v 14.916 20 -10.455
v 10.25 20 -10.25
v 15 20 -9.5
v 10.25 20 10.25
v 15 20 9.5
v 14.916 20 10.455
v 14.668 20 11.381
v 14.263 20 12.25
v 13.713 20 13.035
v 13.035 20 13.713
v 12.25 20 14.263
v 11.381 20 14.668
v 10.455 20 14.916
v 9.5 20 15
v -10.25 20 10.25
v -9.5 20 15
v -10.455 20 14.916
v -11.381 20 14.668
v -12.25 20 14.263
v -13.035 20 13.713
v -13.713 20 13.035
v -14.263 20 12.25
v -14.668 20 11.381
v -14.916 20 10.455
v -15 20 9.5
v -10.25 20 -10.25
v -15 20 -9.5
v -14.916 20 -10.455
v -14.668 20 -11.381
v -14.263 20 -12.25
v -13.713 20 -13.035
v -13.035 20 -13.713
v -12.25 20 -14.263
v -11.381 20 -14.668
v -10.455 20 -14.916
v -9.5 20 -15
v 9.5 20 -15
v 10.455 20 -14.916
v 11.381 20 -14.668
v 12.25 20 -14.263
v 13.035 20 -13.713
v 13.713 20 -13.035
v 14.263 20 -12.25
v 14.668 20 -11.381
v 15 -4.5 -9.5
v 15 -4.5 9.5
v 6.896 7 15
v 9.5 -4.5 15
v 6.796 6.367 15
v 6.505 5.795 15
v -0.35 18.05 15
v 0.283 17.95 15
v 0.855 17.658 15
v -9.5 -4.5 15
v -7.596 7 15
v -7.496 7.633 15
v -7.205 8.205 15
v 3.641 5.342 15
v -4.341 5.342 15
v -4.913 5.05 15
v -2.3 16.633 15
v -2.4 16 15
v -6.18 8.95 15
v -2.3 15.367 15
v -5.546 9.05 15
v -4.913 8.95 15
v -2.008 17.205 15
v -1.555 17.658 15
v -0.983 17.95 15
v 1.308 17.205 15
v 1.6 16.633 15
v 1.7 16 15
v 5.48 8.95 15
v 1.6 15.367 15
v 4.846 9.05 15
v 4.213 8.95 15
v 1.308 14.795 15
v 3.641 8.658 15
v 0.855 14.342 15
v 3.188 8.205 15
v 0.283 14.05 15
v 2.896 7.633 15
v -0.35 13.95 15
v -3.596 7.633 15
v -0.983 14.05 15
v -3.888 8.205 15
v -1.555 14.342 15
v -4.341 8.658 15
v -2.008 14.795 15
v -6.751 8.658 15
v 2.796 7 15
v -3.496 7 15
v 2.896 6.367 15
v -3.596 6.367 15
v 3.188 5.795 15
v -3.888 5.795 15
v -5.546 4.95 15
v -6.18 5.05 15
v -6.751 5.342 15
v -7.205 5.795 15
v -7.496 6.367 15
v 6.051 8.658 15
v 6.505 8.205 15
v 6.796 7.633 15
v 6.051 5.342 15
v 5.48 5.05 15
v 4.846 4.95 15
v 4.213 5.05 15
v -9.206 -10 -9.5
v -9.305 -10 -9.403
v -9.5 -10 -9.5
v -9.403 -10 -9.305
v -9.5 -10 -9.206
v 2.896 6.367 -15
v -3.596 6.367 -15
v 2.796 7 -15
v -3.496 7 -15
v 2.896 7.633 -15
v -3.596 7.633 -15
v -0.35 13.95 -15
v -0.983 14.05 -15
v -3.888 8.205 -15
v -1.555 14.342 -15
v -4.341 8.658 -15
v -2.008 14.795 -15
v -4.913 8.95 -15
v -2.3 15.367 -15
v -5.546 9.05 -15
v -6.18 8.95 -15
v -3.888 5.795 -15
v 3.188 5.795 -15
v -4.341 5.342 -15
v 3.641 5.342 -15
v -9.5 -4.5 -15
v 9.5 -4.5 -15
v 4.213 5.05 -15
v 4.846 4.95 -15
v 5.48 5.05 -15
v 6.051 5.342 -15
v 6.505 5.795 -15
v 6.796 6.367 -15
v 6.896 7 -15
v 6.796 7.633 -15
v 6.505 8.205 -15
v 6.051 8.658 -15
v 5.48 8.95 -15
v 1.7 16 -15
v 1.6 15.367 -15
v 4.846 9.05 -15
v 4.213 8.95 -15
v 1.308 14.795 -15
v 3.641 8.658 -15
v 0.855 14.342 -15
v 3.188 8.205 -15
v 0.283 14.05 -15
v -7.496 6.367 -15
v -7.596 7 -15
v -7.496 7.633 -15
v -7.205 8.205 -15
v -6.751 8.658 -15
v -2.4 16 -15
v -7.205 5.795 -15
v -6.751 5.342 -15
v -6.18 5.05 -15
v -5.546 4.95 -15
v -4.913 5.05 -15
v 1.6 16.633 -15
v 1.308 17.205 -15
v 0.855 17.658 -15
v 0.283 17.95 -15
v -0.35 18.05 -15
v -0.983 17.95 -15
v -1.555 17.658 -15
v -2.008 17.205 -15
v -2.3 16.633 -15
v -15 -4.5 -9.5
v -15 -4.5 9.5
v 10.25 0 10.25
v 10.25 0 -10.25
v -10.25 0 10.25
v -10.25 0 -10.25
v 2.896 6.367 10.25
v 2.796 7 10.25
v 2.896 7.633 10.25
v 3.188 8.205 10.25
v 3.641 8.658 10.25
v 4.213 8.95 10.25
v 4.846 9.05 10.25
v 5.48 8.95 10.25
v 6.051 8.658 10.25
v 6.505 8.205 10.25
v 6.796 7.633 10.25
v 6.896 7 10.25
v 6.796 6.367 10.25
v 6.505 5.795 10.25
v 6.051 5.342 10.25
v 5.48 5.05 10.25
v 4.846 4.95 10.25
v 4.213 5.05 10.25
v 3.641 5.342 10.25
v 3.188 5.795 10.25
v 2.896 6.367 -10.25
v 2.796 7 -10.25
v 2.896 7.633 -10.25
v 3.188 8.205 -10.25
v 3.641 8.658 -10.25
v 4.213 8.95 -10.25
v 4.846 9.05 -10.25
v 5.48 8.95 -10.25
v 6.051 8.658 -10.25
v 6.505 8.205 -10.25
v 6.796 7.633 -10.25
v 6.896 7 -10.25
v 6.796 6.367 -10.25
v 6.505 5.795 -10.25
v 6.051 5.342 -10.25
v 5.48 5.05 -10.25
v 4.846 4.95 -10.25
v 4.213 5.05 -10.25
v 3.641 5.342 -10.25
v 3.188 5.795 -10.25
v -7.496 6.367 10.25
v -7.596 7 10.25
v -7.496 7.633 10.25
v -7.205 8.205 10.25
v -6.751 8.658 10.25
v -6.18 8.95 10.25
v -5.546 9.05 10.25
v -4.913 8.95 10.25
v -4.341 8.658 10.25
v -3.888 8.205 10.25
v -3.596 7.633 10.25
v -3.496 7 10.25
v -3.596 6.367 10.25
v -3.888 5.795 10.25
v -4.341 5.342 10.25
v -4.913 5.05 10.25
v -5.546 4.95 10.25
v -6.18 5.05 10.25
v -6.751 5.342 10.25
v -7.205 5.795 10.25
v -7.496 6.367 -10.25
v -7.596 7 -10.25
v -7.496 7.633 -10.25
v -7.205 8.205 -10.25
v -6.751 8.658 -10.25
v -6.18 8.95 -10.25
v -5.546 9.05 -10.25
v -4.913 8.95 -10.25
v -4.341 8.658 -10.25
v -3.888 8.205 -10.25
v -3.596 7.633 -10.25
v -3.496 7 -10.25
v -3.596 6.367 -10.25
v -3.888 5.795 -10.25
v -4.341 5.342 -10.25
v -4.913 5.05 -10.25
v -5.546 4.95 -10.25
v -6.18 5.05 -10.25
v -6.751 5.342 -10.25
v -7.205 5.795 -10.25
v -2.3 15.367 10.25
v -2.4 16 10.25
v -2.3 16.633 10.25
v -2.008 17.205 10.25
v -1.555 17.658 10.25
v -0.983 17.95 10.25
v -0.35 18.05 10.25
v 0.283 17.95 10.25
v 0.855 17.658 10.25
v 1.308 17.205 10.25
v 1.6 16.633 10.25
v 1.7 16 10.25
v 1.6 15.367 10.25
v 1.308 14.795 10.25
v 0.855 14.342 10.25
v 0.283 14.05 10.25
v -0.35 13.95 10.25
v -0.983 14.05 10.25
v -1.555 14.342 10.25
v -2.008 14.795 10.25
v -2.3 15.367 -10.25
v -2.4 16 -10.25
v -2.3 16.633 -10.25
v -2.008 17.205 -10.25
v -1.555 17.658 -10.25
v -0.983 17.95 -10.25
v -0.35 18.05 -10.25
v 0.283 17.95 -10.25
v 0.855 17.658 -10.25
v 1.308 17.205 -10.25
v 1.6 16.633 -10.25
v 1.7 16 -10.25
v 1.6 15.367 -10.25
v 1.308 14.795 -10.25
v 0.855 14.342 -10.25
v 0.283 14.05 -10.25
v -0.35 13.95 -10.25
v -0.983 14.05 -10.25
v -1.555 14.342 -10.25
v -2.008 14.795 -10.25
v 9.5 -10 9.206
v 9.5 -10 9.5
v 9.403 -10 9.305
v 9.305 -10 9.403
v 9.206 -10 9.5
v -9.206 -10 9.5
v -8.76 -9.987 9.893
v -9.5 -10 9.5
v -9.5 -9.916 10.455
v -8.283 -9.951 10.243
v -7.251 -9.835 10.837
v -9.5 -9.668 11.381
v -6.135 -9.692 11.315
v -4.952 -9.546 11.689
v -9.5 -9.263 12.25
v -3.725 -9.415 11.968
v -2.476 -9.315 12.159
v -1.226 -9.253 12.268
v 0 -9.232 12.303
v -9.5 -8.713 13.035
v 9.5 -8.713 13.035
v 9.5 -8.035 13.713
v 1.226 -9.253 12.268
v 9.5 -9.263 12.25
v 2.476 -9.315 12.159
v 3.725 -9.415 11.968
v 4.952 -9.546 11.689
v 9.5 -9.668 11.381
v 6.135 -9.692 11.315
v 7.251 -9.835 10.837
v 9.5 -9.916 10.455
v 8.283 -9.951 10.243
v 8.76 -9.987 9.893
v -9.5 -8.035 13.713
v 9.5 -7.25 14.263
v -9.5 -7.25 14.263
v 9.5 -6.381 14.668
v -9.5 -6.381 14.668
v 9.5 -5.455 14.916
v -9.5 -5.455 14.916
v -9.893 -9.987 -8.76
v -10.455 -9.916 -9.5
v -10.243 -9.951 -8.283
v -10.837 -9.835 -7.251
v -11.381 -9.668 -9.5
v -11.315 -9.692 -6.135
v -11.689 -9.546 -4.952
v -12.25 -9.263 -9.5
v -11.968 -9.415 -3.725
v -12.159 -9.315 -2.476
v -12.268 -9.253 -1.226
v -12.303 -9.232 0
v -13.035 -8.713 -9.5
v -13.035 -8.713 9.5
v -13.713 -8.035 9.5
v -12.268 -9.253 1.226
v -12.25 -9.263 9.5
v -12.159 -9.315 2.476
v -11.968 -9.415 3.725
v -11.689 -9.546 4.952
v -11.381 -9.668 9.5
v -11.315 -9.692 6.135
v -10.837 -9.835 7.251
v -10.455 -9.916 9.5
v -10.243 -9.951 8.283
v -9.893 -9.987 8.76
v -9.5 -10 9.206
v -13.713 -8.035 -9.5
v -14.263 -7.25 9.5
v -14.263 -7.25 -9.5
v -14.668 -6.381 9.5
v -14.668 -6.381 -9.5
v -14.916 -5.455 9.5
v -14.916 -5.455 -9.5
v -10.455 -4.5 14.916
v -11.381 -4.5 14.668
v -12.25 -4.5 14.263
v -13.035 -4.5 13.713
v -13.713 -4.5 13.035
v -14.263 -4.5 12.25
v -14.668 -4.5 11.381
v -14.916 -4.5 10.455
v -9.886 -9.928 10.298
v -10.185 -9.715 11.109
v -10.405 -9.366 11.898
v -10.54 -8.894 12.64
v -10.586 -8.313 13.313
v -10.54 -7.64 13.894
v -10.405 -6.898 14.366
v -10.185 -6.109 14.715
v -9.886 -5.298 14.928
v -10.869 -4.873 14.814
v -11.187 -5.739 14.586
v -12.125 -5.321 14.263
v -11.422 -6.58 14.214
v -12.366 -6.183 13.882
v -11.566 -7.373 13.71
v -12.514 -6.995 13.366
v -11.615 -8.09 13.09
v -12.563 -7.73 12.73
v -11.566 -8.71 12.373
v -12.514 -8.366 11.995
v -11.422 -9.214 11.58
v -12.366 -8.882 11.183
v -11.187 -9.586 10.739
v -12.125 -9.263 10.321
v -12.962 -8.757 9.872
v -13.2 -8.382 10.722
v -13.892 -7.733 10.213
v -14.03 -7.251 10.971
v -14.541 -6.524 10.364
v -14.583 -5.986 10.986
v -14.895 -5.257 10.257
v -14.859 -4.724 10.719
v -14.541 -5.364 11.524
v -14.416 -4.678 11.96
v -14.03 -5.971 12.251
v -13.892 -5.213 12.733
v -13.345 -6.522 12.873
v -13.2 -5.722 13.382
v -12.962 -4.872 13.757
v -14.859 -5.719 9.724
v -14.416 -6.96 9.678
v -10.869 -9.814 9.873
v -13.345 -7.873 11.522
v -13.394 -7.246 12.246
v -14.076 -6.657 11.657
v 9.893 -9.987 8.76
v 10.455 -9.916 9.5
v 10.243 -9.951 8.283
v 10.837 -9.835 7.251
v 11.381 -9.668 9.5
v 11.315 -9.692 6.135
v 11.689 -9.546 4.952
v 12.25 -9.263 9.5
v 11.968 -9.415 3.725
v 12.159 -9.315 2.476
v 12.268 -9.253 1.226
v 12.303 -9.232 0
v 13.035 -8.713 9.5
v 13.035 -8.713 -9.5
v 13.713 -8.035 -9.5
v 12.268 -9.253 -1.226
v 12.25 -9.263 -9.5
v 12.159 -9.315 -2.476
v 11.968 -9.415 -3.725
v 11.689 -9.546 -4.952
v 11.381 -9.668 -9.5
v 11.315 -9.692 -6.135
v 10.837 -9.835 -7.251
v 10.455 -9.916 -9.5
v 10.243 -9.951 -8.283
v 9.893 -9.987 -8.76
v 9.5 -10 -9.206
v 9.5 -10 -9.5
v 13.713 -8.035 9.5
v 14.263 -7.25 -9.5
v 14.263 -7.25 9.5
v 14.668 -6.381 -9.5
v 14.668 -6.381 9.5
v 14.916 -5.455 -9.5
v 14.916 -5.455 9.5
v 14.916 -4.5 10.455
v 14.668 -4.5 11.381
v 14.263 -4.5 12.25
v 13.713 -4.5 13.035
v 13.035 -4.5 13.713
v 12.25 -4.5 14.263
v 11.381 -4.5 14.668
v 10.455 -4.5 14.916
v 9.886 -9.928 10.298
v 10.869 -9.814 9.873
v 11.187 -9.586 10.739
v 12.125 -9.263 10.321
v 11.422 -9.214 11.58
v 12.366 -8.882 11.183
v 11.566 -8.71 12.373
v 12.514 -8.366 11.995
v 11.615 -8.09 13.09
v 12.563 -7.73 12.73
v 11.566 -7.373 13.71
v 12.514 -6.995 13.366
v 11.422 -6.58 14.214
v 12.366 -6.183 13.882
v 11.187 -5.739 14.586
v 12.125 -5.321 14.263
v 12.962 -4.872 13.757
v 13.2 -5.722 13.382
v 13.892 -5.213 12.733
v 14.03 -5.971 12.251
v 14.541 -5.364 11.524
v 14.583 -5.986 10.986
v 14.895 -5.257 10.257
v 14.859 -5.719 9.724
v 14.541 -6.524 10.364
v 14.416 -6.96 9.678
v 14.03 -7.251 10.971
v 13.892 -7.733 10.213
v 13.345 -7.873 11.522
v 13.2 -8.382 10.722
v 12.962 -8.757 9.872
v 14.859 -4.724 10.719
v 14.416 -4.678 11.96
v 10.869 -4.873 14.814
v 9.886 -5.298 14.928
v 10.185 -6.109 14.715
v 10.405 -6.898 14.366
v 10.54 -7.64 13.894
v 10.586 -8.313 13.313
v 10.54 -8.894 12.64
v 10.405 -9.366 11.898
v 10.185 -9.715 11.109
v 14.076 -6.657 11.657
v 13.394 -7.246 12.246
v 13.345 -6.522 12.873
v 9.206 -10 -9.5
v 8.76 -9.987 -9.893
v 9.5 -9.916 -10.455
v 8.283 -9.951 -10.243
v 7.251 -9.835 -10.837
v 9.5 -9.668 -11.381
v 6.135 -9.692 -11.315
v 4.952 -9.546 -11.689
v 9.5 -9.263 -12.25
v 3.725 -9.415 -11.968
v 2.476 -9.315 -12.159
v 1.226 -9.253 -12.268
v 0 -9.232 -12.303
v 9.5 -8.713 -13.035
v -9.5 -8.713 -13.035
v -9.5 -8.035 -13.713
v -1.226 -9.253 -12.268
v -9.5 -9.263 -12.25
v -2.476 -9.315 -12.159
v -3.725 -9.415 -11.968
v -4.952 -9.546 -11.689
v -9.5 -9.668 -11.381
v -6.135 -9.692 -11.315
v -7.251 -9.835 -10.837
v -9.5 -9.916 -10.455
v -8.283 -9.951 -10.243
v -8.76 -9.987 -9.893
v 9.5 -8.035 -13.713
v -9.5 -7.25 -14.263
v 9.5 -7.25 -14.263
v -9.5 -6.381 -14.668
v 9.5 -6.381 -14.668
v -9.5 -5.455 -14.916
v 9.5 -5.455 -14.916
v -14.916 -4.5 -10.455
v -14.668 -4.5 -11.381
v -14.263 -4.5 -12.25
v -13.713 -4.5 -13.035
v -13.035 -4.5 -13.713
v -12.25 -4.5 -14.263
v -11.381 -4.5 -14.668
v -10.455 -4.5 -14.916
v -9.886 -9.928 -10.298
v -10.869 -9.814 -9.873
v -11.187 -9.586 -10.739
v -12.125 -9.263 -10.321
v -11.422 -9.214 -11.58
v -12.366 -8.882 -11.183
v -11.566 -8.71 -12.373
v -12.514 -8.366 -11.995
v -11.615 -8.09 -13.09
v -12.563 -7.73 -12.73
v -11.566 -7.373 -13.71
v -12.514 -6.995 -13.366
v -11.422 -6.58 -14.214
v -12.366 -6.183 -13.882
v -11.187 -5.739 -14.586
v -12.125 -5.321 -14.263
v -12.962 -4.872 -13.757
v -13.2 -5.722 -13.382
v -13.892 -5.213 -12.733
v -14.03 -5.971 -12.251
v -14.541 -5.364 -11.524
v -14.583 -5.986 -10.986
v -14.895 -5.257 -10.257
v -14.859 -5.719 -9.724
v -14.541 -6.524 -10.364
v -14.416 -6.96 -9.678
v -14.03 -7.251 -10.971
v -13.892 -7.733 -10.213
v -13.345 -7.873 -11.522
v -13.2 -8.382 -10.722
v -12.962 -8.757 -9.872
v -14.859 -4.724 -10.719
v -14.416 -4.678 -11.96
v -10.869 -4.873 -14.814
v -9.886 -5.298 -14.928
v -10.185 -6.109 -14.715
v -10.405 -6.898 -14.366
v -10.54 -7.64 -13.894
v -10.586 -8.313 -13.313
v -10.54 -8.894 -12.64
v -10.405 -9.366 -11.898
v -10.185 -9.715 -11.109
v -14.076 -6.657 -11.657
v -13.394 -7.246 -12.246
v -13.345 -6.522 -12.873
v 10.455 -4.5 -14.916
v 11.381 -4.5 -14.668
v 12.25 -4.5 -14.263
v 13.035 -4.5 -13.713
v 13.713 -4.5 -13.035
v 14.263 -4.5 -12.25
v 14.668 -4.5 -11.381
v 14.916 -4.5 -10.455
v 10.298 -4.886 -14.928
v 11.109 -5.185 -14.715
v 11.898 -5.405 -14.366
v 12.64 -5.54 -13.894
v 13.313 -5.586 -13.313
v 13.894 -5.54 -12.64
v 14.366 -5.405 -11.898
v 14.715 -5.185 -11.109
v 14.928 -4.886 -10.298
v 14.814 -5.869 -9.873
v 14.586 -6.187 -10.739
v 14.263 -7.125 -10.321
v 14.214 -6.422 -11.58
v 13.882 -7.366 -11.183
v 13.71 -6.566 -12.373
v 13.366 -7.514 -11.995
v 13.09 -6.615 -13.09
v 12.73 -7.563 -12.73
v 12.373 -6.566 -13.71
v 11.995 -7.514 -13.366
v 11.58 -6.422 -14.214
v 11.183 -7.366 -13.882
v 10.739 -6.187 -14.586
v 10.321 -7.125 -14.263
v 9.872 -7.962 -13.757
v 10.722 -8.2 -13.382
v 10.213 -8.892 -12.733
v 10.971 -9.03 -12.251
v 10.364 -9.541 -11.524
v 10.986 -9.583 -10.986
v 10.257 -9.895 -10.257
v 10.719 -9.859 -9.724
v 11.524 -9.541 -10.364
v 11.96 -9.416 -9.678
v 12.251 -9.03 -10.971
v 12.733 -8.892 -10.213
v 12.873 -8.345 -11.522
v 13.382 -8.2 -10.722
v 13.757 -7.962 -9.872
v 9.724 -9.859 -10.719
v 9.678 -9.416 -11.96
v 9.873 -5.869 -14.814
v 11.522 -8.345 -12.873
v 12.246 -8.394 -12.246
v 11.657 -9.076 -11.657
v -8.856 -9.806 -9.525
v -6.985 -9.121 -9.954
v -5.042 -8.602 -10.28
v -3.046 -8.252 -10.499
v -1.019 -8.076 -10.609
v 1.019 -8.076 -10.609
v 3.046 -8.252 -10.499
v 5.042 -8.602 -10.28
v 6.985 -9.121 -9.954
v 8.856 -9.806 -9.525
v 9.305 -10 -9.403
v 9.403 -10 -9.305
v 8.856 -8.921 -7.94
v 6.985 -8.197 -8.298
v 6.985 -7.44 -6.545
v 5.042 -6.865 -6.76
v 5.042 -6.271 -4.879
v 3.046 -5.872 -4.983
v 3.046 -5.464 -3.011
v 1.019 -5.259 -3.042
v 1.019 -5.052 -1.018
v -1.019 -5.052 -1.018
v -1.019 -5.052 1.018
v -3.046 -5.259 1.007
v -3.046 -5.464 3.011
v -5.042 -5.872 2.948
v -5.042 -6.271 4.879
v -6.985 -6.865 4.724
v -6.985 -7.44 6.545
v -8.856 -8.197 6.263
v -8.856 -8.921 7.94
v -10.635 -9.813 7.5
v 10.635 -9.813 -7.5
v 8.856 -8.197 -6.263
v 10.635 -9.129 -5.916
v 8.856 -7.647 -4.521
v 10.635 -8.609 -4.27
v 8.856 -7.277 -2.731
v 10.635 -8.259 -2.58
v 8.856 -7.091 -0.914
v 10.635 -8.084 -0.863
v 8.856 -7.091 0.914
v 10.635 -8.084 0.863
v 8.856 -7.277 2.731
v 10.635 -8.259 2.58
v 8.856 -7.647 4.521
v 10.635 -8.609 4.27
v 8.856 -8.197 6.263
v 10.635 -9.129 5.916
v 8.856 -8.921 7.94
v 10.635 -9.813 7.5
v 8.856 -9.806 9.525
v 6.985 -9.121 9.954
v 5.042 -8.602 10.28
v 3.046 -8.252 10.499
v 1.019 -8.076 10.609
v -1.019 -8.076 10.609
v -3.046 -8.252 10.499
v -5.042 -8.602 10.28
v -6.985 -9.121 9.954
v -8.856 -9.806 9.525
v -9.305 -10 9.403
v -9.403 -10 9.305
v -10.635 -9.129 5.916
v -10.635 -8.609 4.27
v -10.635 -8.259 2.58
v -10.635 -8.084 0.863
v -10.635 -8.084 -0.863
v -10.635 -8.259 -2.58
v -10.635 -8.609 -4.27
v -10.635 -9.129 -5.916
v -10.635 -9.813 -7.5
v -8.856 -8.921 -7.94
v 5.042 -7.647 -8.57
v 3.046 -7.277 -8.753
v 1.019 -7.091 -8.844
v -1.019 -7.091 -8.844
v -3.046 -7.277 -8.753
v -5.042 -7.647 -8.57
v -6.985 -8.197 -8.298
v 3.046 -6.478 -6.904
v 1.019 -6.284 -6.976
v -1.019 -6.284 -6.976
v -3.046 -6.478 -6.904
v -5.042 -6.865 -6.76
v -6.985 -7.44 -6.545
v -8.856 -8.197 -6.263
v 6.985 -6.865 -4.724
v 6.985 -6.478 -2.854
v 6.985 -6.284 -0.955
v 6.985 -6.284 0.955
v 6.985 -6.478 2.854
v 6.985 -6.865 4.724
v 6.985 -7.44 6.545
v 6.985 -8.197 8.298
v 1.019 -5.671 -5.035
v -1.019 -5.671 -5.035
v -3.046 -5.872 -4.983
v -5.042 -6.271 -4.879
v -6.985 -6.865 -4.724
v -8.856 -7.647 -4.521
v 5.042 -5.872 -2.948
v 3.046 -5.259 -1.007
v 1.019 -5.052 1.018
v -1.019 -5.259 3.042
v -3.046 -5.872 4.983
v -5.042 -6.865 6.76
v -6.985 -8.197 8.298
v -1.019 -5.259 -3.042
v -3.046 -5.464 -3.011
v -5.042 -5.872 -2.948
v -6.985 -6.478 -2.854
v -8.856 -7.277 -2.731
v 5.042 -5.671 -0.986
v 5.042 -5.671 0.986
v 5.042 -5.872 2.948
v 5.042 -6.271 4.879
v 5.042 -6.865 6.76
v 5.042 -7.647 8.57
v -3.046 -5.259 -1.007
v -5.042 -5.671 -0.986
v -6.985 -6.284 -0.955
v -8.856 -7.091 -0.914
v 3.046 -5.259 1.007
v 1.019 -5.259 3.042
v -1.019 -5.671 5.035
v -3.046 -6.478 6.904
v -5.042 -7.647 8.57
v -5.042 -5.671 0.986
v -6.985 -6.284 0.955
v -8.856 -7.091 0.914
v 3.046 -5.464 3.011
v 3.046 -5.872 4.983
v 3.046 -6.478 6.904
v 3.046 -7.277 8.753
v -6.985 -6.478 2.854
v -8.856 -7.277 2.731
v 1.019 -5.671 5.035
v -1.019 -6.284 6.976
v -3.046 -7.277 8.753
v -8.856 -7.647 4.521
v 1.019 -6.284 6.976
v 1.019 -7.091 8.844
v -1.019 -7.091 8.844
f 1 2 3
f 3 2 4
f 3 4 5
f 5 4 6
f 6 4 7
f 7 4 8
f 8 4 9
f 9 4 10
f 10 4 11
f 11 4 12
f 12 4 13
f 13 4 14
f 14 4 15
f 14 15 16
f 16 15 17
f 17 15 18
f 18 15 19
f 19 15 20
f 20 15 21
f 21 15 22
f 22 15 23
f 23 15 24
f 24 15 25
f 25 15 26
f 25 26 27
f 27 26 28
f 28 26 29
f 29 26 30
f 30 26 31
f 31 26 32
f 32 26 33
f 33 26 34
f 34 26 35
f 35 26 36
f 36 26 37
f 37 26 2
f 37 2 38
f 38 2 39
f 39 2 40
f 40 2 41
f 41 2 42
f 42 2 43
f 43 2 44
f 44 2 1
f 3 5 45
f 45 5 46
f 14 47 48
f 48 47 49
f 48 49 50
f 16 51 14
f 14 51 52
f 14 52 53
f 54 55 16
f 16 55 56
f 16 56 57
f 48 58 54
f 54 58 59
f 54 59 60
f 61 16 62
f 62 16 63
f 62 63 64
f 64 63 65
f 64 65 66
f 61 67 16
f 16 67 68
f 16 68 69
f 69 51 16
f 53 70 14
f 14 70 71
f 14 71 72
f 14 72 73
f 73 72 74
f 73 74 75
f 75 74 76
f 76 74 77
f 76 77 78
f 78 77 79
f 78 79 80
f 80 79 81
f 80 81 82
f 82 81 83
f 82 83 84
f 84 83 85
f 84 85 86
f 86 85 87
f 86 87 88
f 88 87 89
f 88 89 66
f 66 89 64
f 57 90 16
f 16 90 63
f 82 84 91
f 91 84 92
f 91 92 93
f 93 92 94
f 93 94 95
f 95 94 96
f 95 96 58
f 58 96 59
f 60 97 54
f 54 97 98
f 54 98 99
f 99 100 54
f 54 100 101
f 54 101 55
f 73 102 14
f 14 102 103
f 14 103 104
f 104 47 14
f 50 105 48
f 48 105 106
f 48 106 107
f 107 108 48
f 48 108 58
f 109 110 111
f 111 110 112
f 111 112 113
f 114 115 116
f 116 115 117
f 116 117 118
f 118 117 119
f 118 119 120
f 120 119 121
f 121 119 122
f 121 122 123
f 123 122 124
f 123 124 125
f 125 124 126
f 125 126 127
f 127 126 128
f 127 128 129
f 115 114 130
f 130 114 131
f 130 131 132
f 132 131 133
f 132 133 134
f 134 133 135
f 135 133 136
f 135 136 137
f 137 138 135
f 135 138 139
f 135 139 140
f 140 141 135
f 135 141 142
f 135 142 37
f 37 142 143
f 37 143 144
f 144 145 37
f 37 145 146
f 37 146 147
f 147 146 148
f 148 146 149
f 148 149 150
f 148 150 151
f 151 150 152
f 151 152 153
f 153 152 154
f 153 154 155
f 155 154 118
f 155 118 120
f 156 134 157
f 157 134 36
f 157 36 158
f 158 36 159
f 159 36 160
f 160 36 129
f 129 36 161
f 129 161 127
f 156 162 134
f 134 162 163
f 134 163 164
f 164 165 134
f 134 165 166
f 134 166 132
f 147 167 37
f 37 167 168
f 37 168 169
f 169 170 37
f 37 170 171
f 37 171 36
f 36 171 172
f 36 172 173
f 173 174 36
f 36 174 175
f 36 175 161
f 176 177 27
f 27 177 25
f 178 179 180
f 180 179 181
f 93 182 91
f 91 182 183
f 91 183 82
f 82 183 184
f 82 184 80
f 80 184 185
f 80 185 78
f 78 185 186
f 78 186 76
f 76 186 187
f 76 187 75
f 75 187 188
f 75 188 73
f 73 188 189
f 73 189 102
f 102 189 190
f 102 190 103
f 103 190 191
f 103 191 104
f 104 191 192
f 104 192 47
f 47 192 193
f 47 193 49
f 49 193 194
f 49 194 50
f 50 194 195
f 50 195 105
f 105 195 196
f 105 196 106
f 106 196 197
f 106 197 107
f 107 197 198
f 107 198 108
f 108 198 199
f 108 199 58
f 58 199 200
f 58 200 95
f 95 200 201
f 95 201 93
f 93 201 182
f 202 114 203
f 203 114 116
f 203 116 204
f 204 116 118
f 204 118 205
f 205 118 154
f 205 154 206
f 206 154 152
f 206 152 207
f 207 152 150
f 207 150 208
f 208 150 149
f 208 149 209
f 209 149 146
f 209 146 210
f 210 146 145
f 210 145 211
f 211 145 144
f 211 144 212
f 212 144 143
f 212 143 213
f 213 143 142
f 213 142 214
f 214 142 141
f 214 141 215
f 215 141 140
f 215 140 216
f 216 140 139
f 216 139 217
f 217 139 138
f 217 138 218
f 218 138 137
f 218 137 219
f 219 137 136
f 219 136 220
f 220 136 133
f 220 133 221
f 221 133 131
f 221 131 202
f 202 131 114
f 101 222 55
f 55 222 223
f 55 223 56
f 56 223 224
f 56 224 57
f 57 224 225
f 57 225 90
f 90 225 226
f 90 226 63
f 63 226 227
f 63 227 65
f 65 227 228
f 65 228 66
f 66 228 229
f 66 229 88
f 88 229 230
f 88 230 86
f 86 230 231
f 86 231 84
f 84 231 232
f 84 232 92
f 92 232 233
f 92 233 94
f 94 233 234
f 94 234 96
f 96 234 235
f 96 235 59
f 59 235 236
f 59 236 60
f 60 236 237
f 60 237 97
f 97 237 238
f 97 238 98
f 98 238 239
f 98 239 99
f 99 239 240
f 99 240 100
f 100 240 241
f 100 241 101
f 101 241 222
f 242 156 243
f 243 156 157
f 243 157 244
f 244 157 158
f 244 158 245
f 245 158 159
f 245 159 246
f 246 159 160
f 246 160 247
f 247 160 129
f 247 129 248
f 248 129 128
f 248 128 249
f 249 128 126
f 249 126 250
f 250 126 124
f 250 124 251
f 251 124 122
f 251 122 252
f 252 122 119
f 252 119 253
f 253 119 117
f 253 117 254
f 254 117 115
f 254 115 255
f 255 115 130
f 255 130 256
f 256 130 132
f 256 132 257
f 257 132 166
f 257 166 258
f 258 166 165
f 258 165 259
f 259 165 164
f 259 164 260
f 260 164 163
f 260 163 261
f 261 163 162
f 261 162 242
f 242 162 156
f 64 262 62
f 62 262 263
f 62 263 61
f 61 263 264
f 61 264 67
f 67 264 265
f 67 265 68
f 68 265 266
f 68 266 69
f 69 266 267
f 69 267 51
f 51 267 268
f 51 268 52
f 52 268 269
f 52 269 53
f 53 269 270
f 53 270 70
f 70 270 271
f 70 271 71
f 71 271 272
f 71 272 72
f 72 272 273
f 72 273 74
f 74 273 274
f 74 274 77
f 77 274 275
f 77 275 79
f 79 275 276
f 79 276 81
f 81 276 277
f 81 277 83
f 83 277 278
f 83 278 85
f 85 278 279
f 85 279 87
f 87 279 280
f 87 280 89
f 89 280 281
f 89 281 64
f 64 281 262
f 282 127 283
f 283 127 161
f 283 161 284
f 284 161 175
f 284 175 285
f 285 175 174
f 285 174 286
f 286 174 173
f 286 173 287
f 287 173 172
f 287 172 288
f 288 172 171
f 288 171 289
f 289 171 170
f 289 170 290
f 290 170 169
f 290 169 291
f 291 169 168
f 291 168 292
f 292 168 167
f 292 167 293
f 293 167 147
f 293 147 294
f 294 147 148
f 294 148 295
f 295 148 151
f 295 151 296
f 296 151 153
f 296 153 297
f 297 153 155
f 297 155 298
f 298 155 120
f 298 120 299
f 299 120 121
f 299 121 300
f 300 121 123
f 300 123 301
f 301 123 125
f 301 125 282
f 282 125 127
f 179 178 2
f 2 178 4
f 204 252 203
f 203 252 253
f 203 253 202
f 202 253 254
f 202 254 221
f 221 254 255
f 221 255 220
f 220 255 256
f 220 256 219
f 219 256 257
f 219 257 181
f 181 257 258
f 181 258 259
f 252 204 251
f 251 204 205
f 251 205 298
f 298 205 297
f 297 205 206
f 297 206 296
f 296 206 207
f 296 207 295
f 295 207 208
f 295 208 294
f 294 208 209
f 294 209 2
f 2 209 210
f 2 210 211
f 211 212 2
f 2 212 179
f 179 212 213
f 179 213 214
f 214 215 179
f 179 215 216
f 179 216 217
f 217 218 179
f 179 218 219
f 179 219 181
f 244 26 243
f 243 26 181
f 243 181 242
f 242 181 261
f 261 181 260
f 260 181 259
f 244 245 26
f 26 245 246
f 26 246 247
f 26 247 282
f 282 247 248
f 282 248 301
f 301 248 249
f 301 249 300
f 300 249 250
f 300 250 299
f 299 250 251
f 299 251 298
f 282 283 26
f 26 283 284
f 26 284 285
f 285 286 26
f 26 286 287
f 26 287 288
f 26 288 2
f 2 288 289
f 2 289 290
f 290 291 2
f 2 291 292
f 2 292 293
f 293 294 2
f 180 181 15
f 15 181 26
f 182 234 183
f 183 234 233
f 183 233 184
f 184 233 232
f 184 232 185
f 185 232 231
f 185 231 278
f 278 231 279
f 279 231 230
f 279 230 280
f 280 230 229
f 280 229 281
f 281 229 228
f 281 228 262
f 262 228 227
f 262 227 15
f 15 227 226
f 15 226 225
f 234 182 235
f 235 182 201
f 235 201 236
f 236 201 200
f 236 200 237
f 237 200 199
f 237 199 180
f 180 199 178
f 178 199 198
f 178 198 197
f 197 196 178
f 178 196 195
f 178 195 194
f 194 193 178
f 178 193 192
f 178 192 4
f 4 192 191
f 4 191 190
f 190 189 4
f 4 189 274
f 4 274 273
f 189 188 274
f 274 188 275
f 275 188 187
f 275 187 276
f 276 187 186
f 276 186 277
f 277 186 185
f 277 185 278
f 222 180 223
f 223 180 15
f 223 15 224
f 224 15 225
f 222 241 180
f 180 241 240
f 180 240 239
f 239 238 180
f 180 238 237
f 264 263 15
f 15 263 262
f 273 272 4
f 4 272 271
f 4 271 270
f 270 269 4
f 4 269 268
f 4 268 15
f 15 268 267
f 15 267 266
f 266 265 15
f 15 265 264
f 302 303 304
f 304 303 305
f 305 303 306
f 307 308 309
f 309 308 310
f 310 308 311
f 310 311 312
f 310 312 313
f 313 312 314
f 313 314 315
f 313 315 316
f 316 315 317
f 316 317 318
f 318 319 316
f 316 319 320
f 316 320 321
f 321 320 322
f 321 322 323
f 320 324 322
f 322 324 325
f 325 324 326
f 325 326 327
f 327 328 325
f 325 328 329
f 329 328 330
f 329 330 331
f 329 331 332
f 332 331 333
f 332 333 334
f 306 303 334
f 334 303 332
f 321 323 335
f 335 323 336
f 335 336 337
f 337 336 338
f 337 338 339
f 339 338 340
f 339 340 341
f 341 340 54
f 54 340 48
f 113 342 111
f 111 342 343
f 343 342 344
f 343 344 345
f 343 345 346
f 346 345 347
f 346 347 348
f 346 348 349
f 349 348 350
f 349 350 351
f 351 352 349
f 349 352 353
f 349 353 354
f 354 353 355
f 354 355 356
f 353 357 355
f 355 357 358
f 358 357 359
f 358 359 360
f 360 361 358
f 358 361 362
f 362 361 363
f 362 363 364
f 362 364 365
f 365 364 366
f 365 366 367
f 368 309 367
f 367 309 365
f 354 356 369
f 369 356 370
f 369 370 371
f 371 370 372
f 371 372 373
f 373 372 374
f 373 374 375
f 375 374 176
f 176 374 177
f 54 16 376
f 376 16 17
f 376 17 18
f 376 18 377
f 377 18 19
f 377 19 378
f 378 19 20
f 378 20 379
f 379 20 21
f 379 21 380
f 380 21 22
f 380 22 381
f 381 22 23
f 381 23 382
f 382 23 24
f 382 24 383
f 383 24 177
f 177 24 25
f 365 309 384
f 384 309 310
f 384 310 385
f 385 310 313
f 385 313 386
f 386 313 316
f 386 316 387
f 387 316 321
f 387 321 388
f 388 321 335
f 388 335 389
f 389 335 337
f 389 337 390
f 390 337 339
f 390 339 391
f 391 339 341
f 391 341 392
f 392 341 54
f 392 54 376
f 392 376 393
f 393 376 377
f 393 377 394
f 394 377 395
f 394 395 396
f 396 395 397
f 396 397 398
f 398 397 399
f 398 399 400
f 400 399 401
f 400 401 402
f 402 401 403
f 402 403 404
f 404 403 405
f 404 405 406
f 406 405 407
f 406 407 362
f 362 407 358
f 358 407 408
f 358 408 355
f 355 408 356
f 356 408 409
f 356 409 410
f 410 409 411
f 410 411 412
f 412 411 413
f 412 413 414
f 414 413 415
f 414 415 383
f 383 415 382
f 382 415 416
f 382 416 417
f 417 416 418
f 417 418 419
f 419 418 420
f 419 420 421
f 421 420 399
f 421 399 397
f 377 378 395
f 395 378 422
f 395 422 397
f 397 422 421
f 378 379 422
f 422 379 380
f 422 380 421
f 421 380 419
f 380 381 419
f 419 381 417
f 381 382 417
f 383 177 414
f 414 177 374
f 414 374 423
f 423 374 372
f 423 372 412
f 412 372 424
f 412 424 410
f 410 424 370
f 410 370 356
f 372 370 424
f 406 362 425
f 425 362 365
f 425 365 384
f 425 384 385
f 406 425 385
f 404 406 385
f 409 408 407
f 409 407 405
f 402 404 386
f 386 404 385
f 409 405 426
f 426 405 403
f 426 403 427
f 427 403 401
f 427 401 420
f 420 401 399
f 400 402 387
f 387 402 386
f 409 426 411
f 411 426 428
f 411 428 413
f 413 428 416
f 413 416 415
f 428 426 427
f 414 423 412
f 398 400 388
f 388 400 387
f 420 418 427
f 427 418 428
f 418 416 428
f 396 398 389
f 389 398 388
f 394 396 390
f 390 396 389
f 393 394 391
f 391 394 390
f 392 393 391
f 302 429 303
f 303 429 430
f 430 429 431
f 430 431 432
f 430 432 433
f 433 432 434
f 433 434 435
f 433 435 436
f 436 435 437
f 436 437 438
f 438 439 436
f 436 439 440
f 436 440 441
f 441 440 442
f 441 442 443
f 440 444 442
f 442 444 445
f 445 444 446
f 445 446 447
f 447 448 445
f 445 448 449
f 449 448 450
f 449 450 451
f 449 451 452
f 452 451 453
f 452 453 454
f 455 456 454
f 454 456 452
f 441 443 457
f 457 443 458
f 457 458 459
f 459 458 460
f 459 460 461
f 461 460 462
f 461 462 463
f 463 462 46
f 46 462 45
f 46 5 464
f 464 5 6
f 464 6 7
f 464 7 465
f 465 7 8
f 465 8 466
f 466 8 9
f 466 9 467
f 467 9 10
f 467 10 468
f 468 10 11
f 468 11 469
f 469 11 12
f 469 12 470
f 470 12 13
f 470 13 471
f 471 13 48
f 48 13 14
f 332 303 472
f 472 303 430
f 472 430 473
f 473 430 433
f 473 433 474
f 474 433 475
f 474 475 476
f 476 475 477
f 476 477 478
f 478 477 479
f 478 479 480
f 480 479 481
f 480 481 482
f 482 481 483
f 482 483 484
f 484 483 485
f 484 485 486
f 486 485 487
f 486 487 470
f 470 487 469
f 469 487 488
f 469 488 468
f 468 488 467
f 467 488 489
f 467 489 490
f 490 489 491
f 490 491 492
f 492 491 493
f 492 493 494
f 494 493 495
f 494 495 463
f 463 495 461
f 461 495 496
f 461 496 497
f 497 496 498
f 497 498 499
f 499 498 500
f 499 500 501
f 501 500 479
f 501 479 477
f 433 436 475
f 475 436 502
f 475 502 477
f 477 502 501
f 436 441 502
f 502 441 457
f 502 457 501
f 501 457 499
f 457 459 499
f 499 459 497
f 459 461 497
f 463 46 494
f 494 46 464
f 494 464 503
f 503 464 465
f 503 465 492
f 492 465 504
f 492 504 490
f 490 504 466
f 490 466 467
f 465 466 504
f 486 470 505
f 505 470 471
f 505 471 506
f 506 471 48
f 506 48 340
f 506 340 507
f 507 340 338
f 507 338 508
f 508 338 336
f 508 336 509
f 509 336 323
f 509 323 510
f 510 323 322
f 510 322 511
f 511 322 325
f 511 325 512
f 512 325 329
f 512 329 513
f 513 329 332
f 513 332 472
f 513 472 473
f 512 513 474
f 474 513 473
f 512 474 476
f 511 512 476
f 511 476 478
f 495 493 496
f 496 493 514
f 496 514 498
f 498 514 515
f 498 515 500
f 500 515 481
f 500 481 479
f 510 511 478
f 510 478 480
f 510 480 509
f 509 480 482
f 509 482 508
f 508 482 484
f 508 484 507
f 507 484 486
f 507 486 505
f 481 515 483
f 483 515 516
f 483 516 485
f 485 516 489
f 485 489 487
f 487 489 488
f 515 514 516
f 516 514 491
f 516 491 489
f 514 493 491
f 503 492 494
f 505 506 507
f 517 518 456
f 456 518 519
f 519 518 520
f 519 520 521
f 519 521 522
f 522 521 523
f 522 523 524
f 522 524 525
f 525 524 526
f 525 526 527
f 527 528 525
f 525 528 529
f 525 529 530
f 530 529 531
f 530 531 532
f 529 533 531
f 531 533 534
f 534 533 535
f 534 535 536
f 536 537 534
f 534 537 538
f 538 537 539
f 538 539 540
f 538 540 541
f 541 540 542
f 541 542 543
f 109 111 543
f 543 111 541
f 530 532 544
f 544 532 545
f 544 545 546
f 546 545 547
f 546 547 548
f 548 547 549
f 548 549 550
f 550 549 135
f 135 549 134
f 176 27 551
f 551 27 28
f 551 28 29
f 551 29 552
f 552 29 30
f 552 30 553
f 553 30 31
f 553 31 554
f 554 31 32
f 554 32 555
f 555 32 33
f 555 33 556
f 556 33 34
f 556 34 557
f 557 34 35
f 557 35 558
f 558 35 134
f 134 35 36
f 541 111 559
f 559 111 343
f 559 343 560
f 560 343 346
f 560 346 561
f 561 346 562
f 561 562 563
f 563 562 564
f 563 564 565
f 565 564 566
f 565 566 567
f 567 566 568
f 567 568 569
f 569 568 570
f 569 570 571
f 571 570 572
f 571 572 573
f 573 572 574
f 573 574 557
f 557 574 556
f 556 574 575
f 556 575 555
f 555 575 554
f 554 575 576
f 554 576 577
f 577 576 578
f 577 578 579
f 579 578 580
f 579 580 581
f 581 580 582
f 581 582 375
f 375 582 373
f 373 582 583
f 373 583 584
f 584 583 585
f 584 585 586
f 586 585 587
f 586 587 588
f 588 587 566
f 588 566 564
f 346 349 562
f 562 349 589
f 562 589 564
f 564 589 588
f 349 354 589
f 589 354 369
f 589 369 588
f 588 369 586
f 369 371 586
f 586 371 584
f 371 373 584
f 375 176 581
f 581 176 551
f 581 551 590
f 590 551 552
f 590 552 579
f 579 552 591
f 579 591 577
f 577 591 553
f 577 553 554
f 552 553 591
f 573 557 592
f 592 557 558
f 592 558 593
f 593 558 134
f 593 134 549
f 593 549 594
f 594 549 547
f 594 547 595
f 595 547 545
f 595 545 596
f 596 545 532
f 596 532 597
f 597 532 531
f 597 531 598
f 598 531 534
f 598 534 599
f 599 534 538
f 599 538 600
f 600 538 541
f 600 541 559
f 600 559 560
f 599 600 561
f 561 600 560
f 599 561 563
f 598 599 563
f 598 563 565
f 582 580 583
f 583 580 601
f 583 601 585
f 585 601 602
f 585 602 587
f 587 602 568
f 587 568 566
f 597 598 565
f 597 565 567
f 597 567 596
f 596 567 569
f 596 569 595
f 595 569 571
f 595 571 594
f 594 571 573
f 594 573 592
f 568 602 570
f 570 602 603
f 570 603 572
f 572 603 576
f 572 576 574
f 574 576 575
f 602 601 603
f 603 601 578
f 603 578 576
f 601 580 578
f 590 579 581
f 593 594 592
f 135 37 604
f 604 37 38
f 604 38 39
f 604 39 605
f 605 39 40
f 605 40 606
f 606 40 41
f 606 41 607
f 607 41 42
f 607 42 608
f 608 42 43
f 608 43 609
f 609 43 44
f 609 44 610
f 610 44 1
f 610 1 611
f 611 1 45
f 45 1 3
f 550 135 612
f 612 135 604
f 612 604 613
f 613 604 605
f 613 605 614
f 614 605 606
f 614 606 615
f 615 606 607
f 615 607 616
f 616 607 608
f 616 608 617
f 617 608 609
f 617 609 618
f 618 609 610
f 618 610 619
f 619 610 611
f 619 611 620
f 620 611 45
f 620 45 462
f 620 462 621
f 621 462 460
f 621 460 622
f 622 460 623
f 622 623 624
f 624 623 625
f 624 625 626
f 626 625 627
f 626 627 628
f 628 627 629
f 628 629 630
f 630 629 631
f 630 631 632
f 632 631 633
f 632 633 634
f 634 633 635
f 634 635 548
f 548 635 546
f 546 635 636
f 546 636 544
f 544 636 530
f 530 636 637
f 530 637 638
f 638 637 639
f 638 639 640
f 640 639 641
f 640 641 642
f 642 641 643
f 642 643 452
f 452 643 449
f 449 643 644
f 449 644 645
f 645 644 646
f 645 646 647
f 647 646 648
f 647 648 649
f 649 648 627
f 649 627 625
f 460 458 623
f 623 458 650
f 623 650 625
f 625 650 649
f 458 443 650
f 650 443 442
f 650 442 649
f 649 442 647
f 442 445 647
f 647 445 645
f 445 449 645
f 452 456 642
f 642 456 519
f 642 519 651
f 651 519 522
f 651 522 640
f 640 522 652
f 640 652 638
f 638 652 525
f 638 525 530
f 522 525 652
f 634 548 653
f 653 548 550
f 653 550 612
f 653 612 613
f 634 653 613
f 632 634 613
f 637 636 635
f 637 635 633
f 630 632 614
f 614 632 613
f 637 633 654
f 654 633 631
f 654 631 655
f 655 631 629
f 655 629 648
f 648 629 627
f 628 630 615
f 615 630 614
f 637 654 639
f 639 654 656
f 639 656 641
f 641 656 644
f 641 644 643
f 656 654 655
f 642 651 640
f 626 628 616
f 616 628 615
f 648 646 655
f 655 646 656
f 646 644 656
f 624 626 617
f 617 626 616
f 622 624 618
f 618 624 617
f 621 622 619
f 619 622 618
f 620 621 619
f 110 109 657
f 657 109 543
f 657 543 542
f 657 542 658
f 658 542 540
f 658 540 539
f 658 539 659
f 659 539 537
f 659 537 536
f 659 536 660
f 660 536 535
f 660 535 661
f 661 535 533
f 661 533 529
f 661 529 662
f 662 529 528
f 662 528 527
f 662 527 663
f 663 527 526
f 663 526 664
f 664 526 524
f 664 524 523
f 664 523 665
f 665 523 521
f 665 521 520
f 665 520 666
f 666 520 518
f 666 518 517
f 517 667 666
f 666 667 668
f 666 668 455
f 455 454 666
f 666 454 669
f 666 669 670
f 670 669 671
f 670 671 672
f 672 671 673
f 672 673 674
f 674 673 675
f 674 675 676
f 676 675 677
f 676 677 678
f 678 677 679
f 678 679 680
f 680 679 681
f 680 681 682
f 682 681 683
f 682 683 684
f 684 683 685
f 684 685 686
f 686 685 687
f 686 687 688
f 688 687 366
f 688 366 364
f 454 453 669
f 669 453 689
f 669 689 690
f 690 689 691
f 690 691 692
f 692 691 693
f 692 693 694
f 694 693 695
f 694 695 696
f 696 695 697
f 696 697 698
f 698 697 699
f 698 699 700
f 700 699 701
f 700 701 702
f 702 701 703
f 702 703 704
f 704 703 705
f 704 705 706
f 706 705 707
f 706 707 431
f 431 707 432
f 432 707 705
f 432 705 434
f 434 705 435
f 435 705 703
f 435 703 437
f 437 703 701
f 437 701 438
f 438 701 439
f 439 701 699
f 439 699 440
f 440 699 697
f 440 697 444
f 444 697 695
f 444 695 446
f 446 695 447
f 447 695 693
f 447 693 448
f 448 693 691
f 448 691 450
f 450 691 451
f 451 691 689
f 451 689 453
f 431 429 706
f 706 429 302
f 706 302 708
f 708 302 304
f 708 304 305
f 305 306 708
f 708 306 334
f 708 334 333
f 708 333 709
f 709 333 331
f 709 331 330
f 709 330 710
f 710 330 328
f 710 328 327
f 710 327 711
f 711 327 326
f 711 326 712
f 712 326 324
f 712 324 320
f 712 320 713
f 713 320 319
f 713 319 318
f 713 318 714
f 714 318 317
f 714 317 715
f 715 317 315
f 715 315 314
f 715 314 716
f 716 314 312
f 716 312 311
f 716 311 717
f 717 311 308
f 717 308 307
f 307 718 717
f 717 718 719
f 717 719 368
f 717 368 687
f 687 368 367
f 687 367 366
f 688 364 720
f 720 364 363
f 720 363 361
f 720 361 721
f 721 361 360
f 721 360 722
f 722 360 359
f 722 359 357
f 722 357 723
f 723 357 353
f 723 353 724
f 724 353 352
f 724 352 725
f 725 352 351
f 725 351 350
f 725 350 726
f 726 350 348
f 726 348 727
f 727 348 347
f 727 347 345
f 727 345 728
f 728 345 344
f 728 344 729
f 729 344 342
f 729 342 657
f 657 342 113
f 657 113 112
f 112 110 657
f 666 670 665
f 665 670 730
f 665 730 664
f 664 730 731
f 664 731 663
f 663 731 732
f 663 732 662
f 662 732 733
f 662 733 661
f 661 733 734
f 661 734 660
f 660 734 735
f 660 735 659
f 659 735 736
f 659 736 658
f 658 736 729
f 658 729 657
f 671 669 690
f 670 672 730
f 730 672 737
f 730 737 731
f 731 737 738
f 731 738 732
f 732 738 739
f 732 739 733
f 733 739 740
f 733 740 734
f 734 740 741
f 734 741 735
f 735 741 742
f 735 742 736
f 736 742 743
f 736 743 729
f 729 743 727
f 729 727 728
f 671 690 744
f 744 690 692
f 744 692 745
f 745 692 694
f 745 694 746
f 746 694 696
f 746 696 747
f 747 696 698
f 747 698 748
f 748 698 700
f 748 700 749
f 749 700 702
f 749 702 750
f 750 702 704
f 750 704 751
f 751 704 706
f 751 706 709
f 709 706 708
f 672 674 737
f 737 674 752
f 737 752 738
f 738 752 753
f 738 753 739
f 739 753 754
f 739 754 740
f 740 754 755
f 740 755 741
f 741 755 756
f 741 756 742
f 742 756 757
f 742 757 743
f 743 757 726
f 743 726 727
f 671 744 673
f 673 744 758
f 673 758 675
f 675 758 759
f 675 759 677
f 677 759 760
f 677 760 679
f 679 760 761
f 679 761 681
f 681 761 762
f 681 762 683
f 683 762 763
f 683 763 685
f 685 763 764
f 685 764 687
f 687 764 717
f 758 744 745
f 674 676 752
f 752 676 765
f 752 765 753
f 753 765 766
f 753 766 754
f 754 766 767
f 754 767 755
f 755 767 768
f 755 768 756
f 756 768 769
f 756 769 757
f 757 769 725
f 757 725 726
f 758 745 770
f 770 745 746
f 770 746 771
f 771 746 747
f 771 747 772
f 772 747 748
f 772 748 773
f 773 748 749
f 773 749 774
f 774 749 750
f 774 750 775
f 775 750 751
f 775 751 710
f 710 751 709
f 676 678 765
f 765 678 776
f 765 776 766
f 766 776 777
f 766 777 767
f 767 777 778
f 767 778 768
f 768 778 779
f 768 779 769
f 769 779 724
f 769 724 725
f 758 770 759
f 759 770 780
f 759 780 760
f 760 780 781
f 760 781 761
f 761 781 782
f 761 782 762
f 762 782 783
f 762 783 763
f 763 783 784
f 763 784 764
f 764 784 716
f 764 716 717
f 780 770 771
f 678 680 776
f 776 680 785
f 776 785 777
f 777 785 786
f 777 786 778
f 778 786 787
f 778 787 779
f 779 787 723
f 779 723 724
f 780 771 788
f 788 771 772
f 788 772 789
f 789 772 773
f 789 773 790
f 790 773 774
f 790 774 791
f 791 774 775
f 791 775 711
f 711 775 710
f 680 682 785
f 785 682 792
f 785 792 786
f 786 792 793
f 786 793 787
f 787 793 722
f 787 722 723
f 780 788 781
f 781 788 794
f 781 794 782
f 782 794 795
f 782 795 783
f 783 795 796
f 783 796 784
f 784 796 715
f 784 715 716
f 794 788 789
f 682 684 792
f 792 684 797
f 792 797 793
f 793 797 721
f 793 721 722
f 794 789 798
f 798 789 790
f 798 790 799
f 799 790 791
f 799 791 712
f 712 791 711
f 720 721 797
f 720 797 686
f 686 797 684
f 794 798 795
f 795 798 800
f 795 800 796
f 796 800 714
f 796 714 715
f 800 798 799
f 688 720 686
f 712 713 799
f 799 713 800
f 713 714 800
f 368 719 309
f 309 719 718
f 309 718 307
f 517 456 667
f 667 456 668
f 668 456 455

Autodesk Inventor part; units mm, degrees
ref_plane "YZ Plane" through (0, 0, 0) normal (1, 0, 0) x (0, 1, 0)
ref_plane "XZ Plane" through (0, 0, 0) normal (0, 1, 0) x (-1, 0, 0)
ref_plane "XY Plane" through (0, 0, 0) normal (0, 0, 1) x (1, 0, 0)
sketch "Sketch2" plane through (0, 0, 0) normal (0, 1, 0) x (-1, 0, 0)
  line L0 (-10.25, 10.25) -> (10.25, 10.25)
  line L1 (10.25, 10.25) -> (10.25, -10.25)
  line L2 (10.25, -10.25) -> (-10.25, -10.25)
  line L3 (-10.25, -10.25) -> (-10.25, 10.25)
  line L4 (-10.25, 10.25) -> (10.25, -10.25) construction
  line L5 (10.25, 10.25) -> (-10.25, -10.25) construction
  line L6 (-15, 15) -> (15, 15)
  line L7 (15, 15) -> (15, -15)
  line L8 (15, -15) -> (-15, -15)
  line L9 (-15, -15) -> (-15, 15)
  line L10 (-15, 15) -> (15, -15) construction
  line L11 (15, 15) -> (-15, -15) construction
  point P0 (0, 0)
  dimension "d2" = 20.5
  dimension "d3" = 20.5
  dimension "d4" = 30
  dimension "d5" = 30
extrude "Extrusion1" add sketch "Sketch2" along normal blind 20
sketch "Sketch3" plane through (-10.25, 0, -10.25) normal (0, 0, 1) x (1, 0, 0)
  circle A0 centre (9.9, 16) radius 2.05
  circle A1 centre (4.7038, 7) radius 2.05
  circle A2 centre (15.0962, 7) radius 2.05
  point P0 (10.25, 0)
  point P1 (9.9, 10)
  dimension "d8" = 4.1
  dimension "d9" = 6
  dimension "d12" = 360
extrude "Extrusion2" cut sketch "Sketch3" along normal through all both and the other way through all
sketch "Sketch4" plane through (0, 0, 0) normal (0, -1, 0) x (1, 0, 0)
  line L0 (-15, -15) -> (15, -15)
  line L1 (15, -15) -> (15, 15)
  line L2 (15, 15) -> (-15, 15)
  line L3 (-15, 15) -> (-15, -15)
  line L4 (-15, -15) -> (15, 15) construction
  line L5 (15, -15) -> (-15, 15) construction
  point P0 (0, 0)
  dimension "d16" = 30
  dimension "d17" = 30
extrude "Extrusion3" add sketch "Sketch4" along normal blind 25
sketch "Sketch5" plane through (0, -25, 0) normal (0, -1, 0) x (1, 0, 0)
  circle A0 centre (0, 0) radius 20
  line L0 (-20, 0) -> (20, 0)
  dimension "d20" = 40
revolve "Revolution1" cut sketch "Sketch5" angle 360 about axis through (-20, -25, 0) along (1, 0, 0) picked at (4.9901, 4.4208) contours L0 A0
sketch "Sketch6" plane through (0, -25, 0) normal (0, -1, 0) x (1, 0, 0)
  line L0 (-22.5, 22.5) -> (22.5, 22.5)
  line L1 (22.5, 22.5) -> (22.5, -22.5)
  line L2 (22.5, -22.5) -> (-22.5, -22.5)
  line L3 (-22.5, -22.5) -> (-22.5, 22.5)
  line L4 (-22.5, 22.5) -> (22.5, -22.5) construction
  line L5 (22.5, 22.5) -> (-22.5, -22.5) construction
  point P0 (0, 0)
  dimension "d23" = 45
  dimension "d24" = 45
extrude "Extrusion4" cut sketch "Sketch6" against normal blind 15
fillet "Fillet2" radius 5.5 8 edges at (0, -10, 15) (15, -10, 0) (0, -10, -15) (-15, -10, 0) (15, 5, -15) (-15, 5, -15) (-15, 5, 15) (15, 5, 15)
equation "\"d2\" = tool_mount_side + clearance"
equation "\"d3\" = tool_mount_side + clearance"
equation "\"d6\" = tool_mount_depth"
equation "\"tool_mount_side\" = 20"
equation "\"clearance\" = 0.5"
equation "\"tool_mount_depth\" = 20"
properties part number "tool_shoe"
